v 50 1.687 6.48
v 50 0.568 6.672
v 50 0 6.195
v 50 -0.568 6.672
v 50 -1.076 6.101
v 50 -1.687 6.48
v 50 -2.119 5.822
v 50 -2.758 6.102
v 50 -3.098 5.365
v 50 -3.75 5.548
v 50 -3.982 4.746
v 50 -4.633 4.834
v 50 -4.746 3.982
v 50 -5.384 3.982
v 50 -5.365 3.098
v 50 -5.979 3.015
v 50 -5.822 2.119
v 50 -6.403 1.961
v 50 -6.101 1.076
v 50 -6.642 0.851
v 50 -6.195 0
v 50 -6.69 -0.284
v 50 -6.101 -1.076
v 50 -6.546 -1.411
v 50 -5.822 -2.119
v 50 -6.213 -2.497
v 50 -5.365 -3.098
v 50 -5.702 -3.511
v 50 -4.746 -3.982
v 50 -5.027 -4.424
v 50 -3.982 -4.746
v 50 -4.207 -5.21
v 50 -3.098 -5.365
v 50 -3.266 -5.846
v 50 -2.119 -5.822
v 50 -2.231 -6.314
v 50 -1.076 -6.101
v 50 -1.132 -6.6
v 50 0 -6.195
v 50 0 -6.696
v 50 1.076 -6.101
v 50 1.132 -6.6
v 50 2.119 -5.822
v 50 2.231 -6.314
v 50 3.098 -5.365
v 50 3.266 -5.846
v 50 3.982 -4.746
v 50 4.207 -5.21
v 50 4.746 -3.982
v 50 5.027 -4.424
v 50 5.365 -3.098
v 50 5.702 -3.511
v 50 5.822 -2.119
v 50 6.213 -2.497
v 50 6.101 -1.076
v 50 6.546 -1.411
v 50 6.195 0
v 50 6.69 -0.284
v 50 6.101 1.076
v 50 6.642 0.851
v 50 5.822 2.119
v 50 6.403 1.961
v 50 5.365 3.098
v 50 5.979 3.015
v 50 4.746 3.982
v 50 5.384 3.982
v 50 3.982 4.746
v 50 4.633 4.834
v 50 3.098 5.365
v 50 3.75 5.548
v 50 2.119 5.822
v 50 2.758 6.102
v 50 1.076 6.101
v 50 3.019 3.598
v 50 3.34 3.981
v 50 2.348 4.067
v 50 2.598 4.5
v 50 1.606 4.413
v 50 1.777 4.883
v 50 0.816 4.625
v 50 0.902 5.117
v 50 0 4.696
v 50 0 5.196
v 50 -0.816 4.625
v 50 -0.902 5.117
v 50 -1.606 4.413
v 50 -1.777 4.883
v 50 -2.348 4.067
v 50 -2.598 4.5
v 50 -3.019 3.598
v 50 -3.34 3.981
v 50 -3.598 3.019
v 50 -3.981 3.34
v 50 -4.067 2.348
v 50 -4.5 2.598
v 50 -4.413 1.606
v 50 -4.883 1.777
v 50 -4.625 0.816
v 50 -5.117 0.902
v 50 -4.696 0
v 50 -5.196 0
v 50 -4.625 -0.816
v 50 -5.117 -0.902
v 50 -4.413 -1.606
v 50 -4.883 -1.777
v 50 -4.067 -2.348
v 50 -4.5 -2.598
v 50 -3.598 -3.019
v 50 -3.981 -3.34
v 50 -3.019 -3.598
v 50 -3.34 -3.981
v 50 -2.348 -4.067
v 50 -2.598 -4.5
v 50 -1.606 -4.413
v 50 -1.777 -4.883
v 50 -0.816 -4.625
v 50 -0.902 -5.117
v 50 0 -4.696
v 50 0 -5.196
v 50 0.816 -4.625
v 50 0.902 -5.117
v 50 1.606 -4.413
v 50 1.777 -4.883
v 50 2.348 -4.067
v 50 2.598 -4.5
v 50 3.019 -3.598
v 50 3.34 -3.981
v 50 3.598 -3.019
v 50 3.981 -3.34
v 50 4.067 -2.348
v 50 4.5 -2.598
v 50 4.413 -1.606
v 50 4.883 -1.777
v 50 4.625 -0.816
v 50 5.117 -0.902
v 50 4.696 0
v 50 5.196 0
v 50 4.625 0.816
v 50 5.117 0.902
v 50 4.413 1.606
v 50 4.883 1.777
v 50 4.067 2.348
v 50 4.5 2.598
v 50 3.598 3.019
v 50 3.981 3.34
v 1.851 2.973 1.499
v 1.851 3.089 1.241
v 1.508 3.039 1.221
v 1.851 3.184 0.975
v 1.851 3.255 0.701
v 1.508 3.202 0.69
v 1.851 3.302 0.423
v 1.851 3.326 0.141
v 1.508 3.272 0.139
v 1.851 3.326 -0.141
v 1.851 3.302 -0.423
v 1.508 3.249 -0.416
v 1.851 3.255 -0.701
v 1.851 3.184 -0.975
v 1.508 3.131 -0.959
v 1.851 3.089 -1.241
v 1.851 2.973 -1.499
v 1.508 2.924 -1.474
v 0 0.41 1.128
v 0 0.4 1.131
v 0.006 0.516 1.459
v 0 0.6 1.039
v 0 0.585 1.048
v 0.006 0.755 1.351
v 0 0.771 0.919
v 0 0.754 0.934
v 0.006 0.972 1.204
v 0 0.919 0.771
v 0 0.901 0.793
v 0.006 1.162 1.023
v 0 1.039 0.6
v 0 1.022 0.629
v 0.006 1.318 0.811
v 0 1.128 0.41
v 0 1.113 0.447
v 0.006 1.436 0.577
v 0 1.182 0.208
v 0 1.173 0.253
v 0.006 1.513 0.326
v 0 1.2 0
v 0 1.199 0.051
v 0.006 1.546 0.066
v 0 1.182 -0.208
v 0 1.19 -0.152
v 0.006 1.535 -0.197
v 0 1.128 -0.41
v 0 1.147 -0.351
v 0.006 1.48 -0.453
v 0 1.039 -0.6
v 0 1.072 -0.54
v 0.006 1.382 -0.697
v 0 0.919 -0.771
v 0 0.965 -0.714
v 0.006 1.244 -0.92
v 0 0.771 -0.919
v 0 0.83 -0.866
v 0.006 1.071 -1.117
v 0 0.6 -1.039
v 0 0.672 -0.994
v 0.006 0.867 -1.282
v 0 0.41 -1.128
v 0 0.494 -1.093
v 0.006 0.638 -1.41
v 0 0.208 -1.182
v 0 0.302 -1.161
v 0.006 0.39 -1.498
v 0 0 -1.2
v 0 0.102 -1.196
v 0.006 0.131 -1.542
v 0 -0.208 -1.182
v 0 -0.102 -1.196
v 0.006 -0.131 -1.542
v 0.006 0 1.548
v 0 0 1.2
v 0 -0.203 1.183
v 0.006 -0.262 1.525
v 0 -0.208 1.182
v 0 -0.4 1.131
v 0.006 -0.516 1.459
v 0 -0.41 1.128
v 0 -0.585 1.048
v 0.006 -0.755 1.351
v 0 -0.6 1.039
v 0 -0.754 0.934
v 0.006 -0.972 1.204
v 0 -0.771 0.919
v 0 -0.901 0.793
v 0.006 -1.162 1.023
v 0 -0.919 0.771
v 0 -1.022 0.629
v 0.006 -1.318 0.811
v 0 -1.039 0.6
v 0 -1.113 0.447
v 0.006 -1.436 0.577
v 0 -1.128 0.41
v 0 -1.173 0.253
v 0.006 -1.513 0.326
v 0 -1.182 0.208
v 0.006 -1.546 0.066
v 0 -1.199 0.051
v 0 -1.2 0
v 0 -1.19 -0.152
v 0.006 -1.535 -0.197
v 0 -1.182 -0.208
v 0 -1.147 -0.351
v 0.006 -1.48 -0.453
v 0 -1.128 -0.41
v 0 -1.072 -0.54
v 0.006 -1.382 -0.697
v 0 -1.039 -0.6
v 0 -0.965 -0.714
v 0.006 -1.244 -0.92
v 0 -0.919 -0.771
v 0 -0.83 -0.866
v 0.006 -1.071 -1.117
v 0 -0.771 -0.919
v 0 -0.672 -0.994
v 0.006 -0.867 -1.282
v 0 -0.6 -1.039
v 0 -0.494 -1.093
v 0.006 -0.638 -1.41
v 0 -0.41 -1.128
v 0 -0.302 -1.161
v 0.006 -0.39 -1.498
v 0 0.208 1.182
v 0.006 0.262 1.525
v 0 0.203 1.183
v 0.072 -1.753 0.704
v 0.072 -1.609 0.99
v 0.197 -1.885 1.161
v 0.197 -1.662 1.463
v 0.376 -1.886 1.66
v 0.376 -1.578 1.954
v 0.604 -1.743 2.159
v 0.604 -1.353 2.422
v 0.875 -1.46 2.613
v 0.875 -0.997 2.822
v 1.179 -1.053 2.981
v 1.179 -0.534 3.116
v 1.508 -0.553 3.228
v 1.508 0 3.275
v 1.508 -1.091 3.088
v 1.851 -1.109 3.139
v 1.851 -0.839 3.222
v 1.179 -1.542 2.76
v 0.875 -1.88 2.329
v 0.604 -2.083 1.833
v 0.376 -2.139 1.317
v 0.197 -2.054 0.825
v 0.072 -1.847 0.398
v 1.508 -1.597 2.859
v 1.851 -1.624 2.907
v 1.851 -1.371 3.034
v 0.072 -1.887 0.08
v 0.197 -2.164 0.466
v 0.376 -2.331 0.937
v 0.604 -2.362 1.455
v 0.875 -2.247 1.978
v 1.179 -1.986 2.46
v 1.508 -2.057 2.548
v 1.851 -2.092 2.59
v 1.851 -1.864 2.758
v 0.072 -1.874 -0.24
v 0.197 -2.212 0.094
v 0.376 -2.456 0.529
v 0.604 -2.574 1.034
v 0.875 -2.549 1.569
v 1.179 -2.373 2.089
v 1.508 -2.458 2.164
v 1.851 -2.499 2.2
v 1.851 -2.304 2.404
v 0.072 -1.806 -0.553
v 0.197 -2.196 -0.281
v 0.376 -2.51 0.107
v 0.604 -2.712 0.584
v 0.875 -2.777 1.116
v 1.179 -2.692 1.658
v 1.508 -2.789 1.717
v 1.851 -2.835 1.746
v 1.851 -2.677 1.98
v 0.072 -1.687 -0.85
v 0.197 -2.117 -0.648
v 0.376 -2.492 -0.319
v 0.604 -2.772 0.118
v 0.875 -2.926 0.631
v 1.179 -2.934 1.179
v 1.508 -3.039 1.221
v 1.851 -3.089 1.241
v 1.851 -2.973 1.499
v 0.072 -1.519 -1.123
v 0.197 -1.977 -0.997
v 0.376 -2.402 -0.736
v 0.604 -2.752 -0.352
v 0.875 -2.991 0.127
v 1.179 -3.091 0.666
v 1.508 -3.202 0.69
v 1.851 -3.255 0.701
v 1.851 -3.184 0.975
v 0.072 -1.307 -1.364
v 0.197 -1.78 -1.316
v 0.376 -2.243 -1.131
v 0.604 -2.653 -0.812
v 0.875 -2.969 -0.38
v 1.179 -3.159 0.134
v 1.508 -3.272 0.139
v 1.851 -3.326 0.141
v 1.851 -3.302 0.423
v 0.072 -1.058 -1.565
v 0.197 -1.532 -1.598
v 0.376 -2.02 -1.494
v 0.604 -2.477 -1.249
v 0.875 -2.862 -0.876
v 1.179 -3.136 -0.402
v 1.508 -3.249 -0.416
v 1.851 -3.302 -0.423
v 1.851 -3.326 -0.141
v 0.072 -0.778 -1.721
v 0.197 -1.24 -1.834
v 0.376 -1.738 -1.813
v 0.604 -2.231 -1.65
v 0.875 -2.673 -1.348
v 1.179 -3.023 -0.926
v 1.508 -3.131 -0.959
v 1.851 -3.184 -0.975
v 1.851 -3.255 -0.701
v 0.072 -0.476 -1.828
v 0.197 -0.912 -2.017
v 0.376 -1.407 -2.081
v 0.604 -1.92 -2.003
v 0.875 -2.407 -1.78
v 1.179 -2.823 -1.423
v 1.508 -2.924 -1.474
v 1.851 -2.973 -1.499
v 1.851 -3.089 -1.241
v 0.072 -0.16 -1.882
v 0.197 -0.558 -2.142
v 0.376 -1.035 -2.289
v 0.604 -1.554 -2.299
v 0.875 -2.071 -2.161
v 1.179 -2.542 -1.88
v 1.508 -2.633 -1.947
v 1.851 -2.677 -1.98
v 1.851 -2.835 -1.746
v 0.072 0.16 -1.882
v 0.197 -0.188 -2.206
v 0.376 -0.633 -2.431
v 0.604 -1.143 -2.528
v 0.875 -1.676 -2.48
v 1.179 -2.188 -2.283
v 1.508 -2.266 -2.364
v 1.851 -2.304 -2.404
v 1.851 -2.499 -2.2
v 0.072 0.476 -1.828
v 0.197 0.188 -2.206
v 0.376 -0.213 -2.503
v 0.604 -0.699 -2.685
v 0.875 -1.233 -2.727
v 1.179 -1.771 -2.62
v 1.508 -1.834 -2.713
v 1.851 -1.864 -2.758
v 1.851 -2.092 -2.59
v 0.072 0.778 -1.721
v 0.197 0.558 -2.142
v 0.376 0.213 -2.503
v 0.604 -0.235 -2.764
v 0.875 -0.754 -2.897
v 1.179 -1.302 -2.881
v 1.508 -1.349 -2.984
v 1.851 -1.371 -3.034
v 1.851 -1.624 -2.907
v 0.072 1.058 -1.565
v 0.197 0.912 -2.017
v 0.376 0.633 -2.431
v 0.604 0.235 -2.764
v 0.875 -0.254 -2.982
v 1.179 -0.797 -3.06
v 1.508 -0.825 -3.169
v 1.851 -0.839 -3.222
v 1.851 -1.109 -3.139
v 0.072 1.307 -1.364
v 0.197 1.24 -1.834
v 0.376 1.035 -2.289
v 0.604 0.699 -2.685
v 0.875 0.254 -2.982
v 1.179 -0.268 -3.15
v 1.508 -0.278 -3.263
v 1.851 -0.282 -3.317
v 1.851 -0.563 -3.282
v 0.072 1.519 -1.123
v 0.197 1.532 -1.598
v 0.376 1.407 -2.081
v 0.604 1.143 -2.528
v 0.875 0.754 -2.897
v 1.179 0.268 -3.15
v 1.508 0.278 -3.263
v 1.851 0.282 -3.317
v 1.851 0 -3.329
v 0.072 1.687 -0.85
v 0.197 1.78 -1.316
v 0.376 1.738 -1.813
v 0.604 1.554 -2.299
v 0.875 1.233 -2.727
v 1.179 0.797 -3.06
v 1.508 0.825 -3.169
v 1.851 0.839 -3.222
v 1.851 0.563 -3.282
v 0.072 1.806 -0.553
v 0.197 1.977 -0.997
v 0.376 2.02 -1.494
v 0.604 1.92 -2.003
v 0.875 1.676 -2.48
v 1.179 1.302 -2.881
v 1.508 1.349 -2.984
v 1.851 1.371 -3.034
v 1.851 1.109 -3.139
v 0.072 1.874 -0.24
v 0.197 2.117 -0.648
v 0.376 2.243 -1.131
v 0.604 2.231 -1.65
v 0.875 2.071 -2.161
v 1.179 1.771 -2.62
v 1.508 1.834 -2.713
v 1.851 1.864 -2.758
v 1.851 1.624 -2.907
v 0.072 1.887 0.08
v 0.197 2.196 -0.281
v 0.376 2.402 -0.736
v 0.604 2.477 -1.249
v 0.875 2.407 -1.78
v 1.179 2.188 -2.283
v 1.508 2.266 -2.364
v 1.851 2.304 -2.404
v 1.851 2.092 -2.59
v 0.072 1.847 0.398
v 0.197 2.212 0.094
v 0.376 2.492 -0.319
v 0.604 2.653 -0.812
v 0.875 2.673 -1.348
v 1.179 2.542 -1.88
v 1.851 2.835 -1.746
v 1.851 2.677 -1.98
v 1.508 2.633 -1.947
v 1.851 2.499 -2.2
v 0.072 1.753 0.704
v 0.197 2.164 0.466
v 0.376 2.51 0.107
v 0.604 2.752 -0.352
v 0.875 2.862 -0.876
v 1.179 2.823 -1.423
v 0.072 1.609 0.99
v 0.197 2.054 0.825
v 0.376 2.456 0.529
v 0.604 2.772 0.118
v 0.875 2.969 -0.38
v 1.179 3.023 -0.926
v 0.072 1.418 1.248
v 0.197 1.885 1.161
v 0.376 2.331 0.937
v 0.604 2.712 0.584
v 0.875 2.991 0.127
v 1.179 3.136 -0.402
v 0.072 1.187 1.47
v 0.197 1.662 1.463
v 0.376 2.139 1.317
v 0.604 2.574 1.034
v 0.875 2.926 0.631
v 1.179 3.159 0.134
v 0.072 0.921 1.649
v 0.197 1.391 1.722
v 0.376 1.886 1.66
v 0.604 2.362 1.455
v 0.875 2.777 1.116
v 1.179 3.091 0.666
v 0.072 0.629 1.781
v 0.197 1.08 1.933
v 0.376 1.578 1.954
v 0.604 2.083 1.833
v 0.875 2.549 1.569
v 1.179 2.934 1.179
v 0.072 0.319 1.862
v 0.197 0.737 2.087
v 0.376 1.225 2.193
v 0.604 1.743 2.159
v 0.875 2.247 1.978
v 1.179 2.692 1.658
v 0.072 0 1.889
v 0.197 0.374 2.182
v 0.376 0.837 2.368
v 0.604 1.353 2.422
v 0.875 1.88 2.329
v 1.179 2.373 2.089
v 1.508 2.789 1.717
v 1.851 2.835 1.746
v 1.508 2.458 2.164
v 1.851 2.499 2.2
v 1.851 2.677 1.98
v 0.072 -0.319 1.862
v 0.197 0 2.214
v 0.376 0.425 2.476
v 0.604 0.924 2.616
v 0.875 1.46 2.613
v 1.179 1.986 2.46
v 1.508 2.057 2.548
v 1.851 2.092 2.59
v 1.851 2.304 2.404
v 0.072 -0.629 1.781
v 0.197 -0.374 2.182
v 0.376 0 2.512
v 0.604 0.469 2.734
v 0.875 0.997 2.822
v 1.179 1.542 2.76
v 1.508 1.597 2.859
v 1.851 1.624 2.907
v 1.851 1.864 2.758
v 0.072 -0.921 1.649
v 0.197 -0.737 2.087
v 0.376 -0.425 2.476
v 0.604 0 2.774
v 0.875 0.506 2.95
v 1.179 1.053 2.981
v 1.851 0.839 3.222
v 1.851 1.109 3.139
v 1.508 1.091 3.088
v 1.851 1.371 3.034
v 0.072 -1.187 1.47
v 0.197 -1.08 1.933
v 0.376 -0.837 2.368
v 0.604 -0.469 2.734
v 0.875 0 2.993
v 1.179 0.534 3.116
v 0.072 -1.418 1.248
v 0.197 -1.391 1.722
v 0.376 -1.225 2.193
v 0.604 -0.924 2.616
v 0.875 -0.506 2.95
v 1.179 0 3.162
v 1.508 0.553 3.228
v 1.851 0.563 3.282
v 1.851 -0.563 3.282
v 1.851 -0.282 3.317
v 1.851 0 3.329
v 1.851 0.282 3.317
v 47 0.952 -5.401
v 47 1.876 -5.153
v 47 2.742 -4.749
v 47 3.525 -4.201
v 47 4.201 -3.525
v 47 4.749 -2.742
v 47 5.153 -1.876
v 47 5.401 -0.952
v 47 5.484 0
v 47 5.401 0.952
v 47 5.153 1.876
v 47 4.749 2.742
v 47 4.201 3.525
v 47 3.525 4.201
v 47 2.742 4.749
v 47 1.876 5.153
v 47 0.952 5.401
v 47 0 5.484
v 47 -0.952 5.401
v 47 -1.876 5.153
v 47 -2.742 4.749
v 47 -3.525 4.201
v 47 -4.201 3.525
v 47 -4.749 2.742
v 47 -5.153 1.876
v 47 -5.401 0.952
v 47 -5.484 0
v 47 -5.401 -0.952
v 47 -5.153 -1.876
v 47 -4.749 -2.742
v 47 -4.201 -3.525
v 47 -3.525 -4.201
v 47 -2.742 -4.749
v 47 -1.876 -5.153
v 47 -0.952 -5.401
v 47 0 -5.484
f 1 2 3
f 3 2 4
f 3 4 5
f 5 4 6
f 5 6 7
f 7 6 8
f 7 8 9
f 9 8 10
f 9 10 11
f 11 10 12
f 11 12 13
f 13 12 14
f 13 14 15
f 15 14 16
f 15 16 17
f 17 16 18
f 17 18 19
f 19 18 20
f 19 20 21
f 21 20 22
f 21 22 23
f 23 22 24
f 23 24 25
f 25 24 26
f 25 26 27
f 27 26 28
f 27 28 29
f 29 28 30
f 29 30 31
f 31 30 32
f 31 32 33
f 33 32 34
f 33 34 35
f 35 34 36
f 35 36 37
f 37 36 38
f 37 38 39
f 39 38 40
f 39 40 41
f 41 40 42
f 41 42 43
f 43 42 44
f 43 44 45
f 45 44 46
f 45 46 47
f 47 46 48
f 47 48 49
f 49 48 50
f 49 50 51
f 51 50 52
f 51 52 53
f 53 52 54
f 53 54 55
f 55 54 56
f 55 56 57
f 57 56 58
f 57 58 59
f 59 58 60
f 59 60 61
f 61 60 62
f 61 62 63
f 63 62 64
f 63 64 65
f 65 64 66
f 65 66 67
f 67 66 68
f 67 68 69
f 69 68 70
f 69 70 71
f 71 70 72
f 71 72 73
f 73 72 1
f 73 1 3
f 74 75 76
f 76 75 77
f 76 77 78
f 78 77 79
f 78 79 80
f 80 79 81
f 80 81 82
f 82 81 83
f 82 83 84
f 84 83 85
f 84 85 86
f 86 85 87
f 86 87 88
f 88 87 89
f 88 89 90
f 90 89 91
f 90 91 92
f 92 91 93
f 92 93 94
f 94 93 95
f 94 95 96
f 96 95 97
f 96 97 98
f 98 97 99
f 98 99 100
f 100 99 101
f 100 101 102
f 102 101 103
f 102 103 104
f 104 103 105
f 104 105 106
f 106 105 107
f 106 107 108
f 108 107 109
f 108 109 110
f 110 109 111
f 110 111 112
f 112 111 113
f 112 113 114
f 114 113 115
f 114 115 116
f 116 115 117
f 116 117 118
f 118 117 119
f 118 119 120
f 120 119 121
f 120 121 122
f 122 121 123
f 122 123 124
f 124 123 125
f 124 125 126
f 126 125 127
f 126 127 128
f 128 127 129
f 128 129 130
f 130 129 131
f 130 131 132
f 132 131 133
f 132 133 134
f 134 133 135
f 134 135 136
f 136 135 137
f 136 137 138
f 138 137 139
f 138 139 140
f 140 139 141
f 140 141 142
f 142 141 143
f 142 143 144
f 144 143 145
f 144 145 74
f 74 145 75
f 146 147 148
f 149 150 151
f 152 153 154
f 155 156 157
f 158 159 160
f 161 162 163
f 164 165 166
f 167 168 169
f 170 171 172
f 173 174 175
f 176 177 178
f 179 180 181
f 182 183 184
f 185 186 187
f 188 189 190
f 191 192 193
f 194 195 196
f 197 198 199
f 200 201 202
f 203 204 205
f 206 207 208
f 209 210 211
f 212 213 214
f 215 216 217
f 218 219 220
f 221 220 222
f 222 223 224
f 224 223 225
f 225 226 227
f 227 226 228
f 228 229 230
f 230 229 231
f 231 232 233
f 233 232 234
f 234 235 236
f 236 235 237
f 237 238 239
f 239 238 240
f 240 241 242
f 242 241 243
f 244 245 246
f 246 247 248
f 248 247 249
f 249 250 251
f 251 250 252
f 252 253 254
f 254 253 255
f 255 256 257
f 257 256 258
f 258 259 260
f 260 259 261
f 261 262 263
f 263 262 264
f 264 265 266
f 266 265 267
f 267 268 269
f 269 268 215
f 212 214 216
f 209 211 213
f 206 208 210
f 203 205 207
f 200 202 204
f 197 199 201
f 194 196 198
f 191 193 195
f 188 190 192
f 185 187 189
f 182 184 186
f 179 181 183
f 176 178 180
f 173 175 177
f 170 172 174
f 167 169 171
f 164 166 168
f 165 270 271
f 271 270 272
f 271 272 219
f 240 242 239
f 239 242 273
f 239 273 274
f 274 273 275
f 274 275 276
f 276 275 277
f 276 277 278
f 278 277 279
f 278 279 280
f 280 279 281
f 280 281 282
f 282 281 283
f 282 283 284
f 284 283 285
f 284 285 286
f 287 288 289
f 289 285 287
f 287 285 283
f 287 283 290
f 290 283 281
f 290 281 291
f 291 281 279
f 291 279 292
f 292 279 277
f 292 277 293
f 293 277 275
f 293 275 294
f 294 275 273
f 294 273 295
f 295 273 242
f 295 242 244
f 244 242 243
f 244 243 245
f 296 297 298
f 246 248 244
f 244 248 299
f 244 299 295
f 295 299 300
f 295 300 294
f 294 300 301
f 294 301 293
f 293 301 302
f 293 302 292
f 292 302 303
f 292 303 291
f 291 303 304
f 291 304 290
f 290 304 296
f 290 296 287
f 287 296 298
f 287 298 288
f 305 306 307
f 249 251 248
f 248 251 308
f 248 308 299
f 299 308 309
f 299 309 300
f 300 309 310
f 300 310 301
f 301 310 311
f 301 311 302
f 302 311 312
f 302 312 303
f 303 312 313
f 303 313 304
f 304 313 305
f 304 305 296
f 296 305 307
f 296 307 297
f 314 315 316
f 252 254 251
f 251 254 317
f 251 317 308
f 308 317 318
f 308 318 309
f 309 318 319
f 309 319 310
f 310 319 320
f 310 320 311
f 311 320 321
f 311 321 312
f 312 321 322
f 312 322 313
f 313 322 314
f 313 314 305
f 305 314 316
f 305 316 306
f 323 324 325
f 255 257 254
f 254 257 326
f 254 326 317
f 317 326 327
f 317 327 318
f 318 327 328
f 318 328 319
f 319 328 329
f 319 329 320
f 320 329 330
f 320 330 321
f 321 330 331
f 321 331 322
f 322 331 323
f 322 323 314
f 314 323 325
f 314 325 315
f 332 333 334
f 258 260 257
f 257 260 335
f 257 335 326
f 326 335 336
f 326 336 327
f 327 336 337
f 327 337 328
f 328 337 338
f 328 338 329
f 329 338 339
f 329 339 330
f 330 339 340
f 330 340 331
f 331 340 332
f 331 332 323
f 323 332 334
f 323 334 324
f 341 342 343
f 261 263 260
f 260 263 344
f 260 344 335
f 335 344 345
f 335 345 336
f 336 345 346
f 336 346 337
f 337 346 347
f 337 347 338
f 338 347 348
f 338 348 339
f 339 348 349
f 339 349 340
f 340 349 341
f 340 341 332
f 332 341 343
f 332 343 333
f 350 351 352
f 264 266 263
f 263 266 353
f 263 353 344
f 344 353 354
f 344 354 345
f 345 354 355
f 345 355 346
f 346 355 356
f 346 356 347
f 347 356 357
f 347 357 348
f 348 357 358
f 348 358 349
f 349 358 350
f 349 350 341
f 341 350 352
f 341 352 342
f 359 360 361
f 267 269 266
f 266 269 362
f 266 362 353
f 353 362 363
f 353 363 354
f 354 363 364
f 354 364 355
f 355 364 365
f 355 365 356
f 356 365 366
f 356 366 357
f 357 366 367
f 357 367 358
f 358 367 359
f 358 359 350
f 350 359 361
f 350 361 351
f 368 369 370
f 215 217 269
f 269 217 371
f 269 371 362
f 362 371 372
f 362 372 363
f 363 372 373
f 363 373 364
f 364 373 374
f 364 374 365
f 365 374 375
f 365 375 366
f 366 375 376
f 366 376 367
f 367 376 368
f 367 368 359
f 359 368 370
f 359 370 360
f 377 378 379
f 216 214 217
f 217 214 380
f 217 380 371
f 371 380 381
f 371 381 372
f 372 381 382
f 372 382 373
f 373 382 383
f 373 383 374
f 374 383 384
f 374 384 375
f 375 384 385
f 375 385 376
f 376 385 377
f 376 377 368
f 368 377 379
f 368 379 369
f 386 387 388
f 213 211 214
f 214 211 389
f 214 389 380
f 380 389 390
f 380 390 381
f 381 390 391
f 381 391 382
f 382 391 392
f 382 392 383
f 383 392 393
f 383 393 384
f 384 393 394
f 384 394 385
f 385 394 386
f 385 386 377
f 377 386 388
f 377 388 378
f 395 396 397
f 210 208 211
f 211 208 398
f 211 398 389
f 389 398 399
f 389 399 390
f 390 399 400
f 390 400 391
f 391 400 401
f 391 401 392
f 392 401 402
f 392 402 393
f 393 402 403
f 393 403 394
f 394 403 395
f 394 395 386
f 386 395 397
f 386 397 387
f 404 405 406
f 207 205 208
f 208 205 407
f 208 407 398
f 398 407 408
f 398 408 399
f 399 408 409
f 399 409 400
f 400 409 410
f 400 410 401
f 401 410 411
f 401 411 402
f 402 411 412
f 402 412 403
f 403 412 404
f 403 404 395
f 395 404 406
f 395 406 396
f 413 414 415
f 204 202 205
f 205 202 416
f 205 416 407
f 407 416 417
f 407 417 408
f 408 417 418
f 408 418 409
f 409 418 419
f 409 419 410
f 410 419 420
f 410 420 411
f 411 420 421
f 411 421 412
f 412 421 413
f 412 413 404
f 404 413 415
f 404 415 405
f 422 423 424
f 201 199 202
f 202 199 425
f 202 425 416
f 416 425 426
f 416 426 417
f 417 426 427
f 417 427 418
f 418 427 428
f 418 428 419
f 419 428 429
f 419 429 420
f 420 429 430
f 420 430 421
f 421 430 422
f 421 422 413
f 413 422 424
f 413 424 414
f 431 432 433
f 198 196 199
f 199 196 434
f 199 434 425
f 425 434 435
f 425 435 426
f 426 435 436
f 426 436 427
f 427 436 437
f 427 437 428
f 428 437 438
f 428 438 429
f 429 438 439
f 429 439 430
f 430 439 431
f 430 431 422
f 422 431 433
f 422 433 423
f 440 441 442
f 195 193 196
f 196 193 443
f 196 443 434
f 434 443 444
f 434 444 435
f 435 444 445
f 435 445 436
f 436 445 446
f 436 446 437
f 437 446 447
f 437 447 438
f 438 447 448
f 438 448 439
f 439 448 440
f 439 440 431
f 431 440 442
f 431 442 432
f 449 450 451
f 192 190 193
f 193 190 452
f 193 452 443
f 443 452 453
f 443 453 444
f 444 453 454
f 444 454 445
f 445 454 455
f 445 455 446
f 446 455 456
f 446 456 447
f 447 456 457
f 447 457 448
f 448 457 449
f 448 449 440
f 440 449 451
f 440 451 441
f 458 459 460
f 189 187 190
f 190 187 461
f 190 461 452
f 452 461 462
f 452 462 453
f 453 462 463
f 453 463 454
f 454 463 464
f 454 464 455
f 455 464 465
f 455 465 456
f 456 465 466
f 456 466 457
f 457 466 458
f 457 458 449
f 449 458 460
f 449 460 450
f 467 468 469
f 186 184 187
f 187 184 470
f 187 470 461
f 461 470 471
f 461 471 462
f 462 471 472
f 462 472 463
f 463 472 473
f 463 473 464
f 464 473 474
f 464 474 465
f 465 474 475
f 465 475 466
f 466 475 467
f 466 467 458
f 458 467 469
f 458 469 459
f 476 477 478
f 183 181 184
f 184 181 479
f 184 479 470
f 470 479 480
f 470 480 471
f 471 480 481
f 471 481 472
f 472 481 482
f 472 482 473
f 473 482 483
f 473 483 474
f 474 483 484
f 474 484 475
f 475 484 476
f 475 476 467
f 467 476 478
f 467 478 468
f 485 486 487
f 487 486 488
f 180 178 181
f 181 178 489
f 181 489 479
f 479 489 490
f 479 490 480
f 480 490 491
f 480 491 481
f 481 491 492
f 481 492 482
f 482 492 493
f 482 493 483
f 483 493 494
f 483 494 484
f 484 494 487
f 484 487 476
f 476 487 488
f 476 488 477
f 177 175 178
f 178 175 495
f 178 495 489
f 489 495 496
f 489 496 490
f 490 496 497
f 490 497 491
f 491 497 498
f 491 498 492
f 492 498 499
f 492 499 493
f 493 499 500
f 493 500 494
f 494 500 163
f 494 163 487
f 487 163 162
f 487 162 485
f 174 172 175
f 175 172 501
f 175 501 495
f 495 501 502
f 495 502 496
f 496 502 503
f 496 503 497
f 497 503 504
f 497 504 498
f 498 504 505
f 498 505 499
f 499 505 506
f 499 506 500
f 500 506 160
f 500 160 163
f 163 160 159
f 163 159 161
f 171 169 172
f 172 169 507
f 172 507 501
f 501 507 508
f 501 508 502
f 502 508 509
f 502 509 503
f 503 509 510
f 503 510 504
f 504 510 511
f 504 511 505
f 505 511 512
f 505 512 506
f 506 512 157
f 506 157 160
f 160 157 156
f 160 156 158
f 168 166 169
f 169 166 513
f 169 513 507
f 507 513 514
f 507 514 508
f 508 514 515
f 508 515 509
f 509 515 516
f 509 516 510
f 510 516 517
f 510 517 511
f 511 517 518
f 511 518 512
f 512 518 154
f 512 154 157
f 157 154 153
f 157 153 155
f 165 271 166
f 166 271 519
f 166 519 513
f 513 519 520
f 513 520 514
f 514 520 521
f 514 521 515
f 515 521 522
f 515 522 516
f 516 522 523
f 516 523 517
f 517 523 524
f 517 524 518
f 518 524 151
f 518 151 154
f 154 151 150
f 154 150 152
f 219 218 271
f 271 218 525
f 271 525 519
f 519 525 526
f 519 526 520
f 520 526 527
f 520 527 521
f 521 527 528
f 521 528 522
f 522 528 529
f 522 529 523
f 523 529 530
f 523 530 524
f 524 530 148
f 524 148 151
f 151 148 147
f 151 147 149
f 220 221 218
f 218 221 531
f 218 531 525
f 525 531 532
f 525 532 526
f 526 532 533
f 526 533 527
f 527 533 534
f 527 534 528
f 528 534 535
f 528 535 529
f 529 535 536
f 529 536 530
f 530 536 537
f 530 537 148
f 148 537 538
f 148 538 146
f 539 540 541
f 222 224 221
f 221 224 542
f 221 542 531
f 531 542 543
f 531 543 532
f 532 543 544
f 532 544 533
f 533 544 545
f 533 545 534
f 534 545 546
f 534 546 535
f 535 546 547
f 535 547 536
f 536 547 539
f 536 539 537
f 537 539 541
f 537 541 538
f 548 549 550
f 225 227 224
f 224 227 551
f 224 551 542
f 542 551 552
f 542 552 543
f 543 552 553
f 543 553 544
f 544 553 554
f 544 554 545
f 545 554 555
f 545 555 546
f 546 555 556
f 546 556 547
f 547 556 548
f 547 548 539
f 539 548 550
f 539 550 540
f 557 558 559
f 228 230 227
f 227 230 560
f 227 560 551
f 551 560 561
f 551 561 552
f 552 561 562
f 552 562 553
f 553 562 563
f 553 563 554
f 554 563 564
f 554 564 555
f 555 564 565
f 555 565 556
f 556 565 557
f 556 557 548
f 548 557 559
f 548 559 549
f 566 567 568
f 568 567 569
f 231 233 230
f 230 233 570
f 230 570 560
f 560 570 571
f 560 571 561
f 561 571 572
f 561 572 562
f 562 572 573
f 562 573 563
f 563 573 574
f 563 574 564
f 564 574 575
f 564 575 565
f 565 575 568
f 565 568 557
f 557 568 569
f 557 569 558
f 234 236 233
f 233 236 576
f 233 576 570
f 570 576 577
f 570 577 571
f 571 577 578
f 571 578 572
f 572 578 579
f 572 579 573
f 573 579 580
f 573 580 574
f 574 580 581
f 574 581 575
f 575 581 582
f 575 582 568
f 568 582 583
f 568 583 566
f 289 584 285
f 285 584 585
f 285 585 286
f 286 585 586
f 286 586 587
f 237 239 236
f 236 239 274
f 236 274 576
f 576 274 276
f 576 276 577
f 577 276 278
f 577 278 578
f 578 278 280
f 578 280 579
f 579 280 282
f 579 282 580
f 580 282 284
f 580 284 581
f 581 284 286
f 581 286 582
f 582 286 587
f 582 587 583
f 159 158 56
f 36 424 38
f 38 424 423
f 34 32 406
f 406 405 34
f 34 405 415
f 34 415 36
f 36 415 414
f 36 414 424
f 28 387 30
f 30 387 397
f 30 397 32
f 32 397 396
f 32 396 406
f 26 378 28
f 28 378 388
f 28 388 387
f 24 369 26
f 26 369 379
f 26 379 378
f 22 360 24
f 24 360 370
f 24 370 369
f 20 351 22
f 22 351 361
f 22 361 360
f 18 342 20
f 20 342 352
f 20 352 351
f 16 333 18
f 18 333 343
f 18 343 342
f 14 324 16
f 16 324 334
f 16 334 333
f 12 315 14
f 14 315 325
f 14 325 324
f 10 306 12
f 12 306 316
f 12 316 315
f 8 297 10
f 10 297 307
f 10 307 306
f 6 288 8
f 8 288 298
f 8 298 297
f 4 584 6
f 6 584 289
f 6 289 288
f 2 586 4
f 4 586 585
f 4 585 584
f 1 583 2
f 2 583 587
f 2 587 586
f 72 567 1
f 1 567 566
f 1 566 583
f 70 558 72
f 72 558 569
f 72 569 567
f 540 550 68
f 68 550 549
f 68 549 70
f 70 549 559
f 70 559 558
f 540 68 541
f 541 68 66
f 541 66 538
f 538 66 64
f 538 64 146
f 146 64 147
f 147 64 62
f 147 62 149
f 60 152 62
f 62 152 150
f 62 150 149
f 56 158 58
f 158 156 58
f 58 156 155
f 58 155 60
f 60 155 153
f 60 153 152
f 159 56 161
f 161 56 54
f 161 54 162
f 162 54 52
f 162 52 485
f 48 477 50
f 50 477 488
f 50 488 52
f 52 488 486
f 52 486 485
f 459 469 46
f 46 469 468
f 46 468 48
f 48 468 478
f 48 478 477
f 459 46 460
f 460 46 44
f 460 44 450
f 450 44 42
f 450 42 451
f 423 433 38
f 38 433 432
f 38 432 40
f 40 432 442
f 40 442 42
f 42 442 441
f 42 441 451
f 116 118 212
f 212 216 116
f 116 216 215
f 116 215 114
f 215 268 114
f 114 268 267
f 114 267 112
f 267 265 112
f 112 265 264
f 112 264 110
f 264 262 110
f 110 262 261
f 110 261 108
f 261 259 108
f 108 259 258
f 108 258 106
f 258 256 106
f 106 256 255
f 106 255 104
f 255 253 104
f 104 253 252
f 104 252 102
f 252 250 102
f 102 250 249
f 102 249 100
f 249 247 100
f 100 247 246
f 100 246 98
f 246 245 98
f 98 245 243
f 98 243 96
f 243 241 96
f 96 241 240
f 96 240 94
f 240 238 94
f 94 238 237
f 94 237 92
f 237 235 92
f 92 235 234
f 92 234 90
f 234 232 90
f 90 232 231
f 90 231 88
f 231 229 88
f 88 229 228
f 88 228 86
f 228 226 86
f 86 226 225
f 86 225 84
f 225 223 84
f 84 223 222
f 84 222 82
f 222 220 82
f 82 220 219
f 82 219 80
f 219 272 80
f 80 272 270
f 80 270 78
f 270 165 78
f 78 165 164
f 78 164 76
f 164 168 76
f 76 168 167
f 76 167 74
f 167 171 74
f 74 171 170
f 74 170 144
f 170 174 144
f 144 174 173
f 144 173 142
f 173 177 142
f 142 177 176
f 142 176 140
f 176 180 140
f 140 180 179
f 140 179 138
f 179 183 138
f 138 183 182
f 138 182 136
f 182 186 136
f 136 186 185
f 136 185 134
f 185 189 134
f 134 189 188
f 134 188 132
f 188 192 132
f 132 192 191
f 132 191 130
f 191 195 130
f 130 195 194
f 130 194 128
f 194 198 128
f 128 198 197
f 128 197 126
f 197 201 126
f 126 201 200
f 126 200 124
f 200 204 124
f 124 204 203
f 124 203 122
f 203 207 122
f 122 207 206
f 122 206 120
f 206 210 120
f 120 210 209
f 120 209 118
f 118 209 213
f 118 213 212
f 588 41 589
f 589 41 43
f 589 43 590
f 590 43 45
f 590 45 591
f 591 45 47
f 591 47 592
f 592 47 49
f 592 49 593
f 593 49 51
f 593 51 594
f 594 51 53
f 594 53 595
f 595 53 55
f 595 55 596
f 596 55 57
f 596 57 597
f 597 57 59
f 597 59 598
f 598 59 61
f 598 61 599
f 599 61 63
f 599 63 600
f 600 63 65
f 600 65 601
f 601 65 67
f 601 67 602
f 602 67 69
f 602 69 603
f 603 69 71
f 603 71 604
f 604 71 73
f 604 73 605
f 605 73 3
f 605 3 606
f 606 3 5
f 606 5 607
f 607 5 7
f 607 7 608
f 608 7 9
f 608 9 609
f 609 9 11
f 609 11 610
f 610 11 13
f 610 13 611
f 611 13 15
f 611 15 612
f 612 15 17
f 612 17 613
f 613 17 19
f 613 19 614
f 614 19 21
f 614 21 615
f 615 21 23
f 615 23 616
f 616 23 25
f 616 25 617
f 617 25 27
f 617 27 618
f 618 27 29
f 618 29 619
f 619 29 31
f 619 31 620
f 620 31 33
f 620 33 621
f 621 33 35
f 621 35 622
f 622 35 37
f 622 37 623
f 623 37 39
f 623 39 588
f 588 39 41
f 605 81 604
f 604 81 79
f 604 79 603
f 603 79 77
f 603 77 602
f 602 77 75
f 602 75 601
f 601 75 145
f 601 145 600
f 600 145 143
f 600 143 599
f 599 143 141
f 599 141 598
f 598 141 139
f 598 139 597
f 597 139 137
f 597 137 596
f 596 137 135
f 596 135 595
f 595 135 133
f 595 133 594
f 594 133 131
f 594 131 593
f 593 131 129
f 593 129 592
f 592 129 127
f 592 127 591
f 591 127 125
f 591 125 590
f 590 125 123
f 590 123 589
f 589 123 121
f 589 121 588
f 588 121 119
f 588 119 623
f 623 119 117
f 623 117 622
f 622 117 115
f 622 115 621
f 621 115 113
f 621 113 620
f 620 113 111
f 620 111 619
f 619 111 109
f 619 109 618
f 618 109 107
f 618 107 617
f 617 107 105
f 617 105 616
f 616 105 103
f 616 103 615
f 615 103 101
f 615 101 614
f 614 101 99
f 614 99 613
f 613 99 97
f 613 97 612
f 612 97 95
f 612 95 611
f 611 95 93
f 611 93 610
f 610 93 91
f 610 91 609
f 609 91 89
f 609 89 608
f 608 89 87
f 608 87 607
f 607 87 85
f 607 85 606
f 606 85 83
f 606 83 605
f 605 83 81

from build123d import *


with BuildPart() as part:
    # Sketch2 → Revolve2 (revolve)
    with BuildSketch(Plane.XY, mode=Mode.PRIVATE) as revolve2_sk:
        with BuildLine():
            Line((0, 1.2), (50, 4.696340597))
            Line((50, 4.696340597), (50, 6.696340597))
            Line((50, 6.696340597), (1.851094968, 3.32944117))
            ThreePointArc((1.851094968, 3.32944117), (0.484525778, 2.648094905), (0, 1.2))
        make_face()
    revolve(revolve2_sk.sketch.rotate(Axis((-19.275847123, 0, 0), (1, 0, 0)), 90), axis=Axis((-19.275847123, 0, 0), (1, 0, 0)))

    # Sketch3 → Revolve3 (revolve)
    with BuildSketch(Plane.XY, mode=Mode.PRIVATE) as revolve3_sk:
        Polygon((50, 4.695121509), (180, 9.234821543), (180, 11.236040631), (50, 6.696340597), align=None)
    revolve(revolve3_sk.sketch.rotate(Axis((50, 0, 0), (-1, 0, 0)), 90), axis=Axis((50, 0, 0), (-1, 0, 0)))

    # SurfaceCut3
    split(bisect_by=Plane(origin=(50, 0, 0), x_dir=(0, 0, -1), z_dir=(1, 0, 0)), keep=Keep.BOTTOM)

    # Sketch4 → Cut-Revolve1 (revolve, cut)
    with BuildSketch(Plane.XY, mode=Mode.PRIVATE) as cut_revolve1_sk:
        Polygon((50, 6.195119648), (47, 5.484118263), (50, 5.196340597), align=None)
    revolve(cut_revolve1_sk.sketch.rotate(Axis((50, 0, 0), (-1, 0, 0)), 90), axis=Axis((50, 0, 0), (-1, 0, 0)), mode=Mode.SUBTRACT)


solid = part.part
